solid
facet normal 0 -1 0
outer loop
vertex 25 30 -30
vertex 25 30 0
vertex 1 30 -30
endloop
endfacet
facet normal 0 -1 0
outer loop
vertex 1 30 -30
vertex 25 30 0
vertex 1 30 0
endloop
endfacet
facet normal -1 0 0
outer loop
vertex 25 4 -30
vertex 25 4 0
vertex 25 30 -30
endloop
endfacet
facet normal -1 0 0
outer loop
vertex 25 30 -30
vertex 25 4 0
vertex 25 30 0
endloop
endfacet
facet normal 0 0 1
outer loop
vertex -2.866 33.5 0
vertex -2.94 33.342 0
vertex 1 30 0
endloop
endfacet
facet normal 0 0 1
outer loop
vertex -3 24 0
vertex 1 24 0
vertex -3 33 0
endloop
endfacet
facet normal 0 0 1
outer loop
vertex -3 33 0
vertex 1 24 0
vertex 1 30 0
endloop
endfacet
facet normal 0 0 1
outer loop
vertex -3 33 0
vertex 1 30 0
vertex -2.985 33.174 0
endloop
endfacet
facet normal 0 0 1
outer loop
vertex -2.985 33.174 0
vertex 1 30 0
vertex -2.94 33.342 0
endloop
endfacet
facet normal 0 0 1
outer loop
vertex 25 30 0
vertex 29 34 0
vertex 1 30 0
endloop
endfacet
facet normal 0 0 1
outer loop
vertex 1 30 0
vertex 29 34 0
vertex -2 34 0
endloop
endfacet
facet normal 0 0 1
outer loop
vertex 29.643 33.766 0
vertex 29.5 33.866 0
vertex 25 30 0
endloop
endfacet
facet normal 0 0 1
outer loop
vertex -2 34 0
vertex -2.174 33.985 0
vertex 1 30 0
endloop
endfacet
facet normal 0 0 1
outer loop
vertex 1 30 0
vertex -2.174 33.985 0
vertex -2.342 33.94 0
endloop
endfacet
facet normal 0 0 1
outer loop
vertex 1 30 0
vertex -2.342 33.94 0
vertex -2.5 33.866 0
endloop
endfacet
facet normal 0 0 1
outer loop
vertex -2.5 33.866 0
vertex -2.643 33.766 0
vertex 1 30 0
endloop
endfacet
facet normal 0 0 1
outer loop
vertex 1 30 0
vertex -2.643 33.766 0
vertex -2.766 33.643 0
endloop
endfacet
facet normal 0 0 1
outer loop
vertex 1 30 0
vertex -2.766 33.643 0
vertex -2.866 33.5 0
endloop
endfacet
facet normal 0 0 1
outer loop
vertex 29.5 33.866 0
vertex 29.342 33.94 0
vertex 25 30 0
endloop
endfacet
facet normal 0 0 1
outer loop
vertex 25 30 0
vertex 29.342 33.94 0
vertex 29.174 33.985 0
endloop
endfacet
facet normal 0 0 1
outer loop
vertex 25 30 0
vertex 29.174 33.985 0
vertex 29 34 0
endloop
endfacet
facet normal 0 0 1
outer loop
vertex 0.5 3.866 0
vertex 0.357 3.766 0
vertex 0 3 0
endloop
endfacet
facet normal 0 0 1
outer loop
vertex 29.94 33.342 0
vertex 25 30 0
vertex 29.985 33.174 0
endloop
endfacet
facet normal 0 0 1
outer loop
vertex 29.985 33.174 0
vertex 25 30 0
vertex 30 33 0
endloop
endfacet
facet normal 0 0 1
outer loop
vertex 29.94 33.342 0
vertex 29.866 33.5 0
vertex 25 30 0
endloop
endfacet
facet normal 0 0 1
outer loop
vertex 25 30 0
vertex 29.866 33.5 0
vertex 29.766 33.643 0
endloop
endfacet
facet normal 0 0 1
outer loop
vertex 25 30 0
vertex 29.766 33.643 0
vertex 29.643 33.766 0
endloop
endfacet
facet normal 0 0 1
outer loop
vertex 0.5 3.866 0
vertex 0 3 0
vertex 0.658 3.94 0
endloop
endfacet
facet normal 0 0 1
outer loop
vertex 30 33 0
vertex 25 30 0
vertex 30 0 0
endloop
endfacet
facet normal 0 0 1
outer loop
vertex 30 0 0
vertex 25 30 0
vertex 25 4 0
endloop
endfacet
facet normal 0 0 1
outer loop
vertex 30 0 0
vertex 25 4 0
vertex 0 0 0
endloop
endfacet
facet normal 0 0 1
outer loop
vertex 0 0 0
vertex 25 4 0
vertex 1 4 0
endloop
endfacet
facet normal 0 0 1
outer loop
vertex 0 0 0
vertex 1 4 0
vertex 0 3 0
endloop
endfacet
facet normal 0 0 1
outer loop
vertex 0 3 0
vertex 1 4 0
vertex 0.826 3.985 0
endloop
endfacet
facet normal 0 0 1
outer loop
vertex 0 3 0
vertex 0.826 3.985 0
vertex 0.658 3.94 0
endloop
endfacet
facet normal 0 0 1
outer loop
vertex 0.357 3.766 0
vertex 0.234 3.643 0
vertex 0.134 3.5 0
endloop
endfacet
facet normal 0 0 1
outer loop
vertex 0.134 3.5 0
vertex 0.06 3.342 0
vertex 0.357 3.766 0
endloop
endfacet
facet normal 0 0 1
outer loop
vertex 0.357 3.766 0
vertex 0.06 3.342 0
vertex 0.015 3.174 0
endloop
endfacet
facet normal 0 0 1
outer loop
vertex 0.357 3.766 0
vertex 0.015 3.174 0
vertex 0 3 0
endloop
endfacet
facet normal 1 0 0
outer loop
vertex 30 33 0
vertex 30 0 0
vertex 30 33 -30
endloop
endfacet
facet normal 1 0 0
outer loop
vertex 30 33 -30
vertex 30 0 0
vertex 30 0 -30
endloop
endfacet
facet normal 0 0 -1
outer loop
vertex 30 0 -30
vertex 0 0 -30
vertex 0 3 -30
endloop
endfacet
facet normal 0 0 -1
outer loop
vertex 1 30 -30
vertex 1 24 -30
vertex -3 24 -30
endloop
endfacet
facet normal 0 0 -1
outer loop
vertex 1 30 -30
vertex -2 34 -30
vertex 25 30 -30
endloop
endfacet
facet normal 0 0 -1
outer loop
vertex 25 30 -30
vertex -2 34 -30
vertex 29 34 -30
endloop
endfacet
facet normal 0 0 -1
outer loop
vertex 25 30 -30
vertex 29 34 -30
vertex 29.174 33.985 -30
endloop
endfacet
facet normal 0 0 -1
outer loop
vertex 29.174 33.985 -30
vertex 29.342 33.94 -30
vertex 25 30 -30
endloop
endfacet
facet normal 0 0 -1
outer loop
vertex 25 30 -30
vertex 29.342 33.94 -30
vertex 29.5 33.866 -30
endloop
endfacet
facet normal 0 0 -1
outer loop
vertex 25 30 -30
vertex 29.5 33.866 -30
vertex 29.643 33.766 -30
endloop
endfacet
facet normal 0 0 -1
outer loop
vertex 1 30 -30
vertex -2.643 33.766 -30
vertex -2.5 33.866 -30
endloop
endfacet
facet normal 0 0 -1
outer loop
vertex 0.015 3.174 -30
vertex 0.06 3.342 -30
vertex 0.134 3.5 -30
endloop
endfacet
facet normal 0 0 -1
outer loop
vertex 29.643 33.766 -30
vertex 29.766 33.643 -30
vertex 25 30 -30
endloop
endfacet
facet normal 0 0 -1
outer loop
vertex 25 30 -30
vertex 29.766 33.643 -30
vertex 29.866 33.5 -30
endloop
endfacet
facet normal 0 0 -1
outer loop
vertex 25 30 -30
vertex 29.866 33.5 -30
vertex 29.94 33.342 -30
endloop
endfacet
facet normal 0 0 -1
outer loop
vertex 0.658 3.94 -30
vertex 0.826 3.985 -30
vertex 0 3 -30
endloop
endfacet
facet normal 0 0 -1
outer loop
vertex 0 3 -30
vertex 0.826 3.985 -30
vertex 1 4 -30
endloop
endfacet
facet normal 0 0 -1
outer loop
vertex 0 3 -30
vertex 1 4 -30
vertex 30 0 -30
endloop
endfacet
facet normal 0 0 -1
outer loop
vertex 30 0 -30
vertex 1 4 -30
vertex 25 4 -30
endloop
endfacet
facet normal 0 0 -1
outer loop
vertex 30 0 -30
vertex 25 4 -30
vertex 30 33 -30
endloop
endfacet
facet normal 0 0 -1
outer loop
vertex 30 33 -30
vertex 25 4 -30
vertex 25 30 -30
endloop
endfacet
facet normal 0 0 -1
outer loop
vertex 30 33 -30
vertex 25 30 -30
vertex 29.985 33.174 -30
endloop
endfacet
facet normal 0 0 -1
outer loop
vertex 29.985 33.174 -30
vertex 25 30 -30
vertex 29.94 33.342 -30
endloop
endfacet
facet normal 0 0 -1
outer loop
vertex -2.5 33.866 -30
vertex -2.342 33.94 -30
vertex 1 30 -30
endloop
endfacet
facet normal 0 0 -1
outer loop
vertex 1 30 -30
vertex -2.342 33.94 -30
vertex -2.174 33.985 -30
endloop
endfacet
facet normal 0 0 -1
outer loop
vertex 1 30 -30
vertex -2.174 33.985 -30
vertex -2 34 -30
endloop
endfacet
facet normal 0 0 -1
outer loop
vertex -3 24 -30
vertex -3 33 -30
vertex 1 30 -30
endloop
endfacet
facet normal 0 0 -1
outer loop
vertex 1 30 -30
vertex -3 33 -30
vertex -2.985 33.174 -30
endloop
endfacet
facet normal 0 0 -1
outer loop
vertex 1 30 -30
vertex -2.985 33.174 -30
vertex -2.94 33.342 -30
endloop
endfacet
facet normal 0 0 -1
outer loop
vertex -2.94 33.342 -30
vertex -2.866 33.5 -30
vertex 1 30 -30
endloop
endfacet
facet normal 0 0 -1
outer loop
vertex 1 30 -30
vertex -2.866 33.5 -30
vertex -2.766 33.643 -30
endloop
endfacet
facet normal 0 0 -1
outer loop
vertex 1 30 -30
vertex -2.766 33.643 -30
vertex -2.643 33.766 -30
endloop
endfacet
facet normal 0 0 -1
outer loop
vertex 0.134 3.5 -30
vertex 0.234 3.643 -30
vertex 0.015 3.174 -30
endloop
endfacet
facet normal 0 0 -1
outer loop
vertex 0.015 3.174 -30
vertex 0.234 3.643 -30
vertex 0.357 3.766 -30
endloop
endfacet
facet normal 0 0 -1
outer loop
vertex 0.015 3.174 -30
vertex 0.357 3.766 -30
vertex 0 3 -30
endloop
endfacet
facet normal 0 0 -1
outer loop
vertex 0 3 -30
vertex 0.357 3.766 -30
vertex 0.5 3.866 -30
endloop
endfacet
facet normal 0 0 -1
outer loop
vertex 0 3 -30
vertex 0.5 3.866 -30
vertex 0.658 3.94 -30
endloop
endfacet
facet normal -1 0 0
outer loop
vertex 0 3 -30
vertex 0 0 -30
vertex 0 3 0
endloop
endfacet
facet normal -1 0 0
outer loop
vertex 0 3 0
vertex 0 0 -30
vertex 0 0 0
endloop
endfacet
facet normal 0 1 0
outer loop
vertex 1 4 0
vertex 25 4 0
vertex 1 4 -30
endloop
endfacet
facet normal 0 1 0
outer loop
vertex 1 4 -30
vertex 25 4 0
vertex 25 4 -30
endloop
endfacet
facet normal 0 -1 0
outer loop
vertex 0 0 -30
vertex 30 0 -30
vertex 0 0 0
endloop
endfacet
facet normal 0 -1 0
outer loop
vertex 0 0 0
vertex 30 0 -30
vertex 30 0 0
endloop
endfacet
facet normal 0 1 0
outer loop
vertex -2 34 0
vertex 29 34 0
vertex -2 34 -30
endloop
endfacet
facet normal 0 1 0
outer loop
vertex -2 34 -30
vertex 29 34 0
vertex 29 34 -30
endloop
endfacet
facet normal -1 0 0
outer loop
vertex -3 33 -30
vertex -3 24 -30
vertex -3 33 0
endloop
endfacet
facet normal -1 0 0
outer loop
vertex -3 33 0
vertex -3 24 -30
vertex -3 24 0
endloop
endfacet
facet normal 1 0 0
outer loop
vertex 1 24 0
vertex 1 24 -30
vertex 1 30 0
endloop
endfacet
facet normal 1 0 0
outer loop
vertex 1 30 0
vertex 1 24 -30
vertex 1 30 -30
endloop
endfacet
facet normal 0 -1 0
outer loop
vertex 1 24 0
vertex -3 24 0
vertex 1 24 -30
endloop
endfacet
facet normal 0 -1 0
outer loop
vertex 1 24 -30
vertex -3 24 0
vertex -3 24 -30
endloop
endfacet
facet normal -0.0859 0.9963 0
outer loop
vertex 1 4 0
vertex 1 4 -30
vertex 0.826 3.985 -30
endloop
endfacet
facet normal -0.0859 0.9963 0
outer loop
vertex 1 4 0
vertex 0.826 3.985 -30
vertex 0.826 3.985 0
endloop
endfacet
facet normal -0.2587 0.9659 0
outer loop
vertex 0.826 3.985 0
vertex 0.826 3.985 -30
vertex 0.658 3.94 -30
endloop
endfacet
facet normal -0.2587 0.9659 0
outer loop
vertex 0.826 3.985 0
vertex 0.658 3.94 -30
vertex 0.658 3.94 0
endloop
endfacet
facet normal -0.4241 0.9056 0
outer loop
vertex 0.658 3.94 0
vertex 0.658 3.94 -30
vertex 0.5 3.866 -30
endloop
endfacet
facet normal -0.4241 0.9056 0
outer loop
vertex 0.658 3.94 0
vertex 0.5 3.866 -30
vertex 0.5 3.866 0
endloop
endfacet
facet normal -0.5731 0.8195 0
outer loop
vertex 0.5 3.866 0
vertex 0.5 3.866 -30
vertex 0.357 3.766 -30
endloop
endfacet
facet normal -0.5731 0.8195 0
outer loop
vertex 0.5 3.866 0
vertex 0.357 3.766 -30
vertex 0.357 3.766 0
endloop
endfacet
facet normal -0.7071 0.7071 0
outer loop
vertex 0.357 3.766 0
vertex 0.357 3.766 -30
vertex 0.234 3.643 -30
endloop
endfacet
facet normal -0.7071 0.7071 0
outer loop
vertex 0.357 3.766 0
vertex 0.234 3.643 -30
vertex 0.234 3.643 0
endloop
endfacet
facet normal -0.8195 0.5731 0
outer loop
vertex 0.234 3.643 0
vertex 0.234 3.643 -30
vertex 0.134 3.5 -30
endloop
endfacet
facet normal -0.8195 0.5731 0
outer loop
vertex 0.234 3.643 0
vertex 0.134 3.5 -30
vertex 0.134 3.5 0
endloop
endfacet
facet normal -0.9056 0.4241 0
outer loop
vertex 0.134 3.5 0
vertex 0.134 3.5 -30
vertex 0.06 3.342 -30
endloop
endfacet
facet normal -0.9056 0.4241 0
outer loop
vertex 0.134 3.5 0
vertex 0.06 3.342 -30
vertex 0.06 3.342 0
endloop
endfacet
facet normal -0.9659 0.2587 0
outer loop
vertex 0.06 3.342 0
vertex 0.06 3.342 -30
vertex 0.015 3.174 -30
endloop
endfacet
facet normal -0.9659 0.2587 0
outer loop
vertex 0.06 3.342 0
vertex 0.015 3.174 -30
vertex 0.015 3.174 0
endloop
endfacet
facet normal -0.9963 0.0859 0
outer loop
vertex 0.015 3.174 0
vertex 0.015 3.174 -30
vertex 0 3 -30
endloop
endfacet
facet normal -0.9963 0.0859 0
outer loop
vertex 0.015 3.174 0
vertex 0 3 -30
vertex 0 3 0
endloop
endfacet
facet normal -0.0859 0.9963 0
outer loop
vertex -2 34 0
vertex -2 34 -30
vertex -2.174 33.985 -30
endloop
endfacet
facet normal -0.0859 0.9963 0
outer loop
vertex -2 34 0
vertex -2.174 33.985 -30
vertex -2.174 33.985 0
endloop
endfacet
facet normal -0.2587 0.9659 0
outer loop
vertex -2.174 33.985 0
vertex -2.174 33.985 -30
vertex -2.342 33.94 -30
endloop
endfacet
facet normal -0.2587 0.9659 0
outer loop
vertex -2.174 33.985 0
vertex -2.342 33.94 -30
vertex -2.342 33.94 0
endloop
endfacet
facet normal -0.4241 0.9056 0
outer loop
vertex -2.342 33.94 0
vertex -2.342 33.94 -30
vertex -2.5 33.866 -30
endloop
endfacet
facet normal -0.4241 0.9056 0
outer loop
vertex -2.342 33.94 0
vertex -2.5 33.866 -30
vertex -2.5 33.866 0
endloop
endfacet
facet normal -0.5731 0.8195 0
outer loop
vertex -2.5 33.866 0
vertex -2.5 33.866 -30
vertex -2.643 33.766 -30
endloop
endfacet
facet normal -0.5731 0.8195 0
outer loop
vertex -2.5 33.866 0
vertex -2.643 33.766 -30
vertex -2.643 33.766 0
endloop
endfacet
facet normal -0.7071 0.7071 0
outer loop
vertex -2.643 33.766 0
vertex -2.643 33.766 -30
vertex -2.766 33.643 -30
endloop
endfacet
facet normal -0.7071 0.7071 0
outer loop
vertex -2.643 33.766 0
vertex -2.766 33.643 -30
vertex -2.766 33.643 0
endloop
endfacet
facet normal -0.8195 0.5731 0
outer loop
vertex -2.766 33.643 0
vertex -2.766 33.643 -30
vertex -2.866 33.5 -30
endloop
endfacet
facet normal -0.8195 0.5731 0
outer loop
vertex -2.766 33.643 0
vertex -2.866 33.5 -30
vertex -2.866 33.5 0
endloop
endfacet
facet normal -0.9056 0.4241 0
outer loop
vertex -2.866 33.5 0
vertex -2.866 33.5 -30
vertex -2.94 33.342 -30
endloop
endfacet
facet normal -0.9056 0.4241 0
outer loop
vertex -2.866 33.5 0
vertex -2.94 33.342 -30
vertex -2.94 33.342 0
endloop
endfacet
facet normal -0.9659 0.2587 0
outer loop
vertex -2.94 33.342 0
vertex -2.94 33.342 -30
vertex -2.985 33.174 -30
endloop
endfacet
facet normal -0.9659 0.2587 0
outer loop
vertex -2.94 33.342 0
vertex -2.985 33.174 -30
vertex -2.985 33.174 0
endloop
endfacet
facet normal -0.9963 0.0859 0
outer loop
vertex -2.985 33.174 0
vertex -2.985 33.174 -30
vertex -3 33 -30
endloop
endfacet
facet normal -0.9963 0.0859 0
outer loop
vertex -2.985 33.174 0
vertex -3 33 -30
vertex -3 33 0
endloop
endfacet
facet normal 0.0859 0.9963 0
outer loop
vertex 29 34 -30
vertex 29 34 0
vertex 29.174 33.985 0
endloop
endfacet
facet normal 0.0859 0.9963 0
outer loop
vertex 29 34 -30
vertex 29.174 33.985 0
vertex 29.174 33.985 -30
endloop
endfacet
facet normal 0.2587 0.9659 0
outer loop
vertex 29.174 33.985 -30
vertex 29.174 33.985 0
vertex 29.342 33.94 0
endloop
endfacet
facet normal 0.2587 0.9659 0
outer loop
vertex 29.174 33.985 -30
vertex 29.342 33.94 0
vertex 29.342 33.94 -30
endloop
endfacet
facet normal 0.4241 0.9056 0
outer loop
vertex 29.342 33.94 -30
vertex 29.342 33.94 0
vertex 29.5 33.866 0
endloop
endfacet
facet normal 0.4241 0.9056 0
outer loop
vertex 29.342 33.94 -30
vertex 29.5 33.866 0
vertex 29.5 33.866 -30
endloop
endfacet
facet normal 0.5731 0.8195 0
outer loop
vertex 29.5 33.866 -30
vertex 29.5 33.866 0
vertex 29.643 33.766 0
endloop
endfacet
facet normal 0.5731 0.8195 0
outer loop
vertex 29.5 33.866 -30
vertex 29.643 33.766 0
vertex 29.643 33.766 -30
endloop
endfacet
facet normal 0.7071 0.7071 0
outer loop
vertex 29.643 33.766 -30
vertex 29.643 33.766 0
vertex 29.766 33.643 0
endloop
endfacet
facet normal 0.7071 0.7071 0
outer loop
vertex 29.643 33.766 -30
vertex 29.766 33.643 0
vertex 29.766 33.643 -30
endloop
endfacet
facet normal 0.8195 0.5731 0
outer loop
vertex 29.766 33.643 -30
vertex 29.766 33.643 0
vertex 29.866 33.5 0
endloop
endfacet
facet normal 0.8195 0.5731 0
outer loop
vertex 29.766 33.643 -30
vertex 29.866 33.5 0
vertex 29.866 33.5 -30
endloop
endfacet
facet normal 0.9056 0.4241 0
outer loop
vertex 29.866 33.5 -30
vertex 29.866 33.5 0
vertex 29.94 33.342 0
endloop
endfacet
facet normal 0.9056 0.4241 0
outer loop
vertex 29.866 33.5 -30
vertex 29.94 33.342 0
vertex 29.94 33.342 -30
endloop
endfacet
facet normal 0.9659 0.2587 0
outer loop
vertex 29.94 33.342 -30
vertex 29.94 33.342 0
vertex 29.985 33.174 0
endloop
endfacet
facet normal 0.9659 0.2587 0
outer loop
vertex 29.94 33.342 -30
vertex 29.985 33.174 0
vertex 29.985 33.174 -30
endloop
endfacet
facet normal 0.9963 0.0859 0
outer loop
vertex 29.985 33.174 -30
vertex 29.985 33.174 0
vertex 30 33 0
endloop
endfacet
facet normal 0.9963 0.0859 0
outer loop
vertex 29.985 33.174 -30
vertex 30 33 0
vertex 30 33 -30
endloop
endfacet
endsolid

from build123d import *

# Parameters (mm, degrees)
SKETCH1_W           = 30
SKETCH1_H           = 30
BOSS_EXTRUDE1_DEPTH = 4
SKETCH2_W           = 5
SKETCH2_H           = 30
BOSS_EXTRUDE2_DEPTH = 30
SKETCH3_W           = 30
SKETCH3_H           = 4
BOSS_EXTRUDE3_DEPTH = 28
SKETCH4_W           = 4
SKETCH4_H           = 30
BOSS_EXTRUDE4_DEPTH = 6
FILLET1_R           = 1


with BuildPart() as part:
    # Sketch1 → Boss-Extrude1 (new body)
    with BuildSketch(Plane(origin=(0, 0, 0), x_dir=(1, 0, 0), z_dir=(0, 1, 0))):
        with Locations((15, 15)):
            Rectangle(SKETCH1_W, SKETCH1_H)
    extrude(amount=BOSS_EXTRUDE1_DEPTH)

    # Sketch2 → Boss-Extrude2 (add)
    with BuildSketch(Plane(origin=(0, 4, 0), x_dir=(1, 0, 0), z_dir=(0, 1, 0))):
        with Locations((27.5, 15)):
            Rectangle(SKETCH2_W, SKETCH2_H)
    extrude(amount=BOSS_EXTRUDE2_DEPTH)

    # Sketch3 → Boss-Extrude3 (add)
    with BuildSketch(Plane.ZY.offset(-25)):
        with Locations((-15, 32)):
            Rectangle(SKETCH3_W, SKETCH3_H)
    extrude(amount=BOSS_EXTRUDE3_DEPTH)

    # Sketch4 → Boss-Extrude4 (add)
    with BuildSketch(Plane.XZ.offset(-30)):
        with Locations((-1, -15)):
            Rectangle(SKETCH4_W, SKETCH4_H)
    extrude(amount=BOSS_EXTRUDE4_DEPTH)

    # Fillet1
    fillet1_edges = [part.edges().sort_by_distance(p)[0] for p in [
        (0, 4, -15),
        (30, 34, -15),
        (-3, 34, -15),
    ]]
    fillet(fillet1_edges, radius=FILLET1_R)


solid = part.part
